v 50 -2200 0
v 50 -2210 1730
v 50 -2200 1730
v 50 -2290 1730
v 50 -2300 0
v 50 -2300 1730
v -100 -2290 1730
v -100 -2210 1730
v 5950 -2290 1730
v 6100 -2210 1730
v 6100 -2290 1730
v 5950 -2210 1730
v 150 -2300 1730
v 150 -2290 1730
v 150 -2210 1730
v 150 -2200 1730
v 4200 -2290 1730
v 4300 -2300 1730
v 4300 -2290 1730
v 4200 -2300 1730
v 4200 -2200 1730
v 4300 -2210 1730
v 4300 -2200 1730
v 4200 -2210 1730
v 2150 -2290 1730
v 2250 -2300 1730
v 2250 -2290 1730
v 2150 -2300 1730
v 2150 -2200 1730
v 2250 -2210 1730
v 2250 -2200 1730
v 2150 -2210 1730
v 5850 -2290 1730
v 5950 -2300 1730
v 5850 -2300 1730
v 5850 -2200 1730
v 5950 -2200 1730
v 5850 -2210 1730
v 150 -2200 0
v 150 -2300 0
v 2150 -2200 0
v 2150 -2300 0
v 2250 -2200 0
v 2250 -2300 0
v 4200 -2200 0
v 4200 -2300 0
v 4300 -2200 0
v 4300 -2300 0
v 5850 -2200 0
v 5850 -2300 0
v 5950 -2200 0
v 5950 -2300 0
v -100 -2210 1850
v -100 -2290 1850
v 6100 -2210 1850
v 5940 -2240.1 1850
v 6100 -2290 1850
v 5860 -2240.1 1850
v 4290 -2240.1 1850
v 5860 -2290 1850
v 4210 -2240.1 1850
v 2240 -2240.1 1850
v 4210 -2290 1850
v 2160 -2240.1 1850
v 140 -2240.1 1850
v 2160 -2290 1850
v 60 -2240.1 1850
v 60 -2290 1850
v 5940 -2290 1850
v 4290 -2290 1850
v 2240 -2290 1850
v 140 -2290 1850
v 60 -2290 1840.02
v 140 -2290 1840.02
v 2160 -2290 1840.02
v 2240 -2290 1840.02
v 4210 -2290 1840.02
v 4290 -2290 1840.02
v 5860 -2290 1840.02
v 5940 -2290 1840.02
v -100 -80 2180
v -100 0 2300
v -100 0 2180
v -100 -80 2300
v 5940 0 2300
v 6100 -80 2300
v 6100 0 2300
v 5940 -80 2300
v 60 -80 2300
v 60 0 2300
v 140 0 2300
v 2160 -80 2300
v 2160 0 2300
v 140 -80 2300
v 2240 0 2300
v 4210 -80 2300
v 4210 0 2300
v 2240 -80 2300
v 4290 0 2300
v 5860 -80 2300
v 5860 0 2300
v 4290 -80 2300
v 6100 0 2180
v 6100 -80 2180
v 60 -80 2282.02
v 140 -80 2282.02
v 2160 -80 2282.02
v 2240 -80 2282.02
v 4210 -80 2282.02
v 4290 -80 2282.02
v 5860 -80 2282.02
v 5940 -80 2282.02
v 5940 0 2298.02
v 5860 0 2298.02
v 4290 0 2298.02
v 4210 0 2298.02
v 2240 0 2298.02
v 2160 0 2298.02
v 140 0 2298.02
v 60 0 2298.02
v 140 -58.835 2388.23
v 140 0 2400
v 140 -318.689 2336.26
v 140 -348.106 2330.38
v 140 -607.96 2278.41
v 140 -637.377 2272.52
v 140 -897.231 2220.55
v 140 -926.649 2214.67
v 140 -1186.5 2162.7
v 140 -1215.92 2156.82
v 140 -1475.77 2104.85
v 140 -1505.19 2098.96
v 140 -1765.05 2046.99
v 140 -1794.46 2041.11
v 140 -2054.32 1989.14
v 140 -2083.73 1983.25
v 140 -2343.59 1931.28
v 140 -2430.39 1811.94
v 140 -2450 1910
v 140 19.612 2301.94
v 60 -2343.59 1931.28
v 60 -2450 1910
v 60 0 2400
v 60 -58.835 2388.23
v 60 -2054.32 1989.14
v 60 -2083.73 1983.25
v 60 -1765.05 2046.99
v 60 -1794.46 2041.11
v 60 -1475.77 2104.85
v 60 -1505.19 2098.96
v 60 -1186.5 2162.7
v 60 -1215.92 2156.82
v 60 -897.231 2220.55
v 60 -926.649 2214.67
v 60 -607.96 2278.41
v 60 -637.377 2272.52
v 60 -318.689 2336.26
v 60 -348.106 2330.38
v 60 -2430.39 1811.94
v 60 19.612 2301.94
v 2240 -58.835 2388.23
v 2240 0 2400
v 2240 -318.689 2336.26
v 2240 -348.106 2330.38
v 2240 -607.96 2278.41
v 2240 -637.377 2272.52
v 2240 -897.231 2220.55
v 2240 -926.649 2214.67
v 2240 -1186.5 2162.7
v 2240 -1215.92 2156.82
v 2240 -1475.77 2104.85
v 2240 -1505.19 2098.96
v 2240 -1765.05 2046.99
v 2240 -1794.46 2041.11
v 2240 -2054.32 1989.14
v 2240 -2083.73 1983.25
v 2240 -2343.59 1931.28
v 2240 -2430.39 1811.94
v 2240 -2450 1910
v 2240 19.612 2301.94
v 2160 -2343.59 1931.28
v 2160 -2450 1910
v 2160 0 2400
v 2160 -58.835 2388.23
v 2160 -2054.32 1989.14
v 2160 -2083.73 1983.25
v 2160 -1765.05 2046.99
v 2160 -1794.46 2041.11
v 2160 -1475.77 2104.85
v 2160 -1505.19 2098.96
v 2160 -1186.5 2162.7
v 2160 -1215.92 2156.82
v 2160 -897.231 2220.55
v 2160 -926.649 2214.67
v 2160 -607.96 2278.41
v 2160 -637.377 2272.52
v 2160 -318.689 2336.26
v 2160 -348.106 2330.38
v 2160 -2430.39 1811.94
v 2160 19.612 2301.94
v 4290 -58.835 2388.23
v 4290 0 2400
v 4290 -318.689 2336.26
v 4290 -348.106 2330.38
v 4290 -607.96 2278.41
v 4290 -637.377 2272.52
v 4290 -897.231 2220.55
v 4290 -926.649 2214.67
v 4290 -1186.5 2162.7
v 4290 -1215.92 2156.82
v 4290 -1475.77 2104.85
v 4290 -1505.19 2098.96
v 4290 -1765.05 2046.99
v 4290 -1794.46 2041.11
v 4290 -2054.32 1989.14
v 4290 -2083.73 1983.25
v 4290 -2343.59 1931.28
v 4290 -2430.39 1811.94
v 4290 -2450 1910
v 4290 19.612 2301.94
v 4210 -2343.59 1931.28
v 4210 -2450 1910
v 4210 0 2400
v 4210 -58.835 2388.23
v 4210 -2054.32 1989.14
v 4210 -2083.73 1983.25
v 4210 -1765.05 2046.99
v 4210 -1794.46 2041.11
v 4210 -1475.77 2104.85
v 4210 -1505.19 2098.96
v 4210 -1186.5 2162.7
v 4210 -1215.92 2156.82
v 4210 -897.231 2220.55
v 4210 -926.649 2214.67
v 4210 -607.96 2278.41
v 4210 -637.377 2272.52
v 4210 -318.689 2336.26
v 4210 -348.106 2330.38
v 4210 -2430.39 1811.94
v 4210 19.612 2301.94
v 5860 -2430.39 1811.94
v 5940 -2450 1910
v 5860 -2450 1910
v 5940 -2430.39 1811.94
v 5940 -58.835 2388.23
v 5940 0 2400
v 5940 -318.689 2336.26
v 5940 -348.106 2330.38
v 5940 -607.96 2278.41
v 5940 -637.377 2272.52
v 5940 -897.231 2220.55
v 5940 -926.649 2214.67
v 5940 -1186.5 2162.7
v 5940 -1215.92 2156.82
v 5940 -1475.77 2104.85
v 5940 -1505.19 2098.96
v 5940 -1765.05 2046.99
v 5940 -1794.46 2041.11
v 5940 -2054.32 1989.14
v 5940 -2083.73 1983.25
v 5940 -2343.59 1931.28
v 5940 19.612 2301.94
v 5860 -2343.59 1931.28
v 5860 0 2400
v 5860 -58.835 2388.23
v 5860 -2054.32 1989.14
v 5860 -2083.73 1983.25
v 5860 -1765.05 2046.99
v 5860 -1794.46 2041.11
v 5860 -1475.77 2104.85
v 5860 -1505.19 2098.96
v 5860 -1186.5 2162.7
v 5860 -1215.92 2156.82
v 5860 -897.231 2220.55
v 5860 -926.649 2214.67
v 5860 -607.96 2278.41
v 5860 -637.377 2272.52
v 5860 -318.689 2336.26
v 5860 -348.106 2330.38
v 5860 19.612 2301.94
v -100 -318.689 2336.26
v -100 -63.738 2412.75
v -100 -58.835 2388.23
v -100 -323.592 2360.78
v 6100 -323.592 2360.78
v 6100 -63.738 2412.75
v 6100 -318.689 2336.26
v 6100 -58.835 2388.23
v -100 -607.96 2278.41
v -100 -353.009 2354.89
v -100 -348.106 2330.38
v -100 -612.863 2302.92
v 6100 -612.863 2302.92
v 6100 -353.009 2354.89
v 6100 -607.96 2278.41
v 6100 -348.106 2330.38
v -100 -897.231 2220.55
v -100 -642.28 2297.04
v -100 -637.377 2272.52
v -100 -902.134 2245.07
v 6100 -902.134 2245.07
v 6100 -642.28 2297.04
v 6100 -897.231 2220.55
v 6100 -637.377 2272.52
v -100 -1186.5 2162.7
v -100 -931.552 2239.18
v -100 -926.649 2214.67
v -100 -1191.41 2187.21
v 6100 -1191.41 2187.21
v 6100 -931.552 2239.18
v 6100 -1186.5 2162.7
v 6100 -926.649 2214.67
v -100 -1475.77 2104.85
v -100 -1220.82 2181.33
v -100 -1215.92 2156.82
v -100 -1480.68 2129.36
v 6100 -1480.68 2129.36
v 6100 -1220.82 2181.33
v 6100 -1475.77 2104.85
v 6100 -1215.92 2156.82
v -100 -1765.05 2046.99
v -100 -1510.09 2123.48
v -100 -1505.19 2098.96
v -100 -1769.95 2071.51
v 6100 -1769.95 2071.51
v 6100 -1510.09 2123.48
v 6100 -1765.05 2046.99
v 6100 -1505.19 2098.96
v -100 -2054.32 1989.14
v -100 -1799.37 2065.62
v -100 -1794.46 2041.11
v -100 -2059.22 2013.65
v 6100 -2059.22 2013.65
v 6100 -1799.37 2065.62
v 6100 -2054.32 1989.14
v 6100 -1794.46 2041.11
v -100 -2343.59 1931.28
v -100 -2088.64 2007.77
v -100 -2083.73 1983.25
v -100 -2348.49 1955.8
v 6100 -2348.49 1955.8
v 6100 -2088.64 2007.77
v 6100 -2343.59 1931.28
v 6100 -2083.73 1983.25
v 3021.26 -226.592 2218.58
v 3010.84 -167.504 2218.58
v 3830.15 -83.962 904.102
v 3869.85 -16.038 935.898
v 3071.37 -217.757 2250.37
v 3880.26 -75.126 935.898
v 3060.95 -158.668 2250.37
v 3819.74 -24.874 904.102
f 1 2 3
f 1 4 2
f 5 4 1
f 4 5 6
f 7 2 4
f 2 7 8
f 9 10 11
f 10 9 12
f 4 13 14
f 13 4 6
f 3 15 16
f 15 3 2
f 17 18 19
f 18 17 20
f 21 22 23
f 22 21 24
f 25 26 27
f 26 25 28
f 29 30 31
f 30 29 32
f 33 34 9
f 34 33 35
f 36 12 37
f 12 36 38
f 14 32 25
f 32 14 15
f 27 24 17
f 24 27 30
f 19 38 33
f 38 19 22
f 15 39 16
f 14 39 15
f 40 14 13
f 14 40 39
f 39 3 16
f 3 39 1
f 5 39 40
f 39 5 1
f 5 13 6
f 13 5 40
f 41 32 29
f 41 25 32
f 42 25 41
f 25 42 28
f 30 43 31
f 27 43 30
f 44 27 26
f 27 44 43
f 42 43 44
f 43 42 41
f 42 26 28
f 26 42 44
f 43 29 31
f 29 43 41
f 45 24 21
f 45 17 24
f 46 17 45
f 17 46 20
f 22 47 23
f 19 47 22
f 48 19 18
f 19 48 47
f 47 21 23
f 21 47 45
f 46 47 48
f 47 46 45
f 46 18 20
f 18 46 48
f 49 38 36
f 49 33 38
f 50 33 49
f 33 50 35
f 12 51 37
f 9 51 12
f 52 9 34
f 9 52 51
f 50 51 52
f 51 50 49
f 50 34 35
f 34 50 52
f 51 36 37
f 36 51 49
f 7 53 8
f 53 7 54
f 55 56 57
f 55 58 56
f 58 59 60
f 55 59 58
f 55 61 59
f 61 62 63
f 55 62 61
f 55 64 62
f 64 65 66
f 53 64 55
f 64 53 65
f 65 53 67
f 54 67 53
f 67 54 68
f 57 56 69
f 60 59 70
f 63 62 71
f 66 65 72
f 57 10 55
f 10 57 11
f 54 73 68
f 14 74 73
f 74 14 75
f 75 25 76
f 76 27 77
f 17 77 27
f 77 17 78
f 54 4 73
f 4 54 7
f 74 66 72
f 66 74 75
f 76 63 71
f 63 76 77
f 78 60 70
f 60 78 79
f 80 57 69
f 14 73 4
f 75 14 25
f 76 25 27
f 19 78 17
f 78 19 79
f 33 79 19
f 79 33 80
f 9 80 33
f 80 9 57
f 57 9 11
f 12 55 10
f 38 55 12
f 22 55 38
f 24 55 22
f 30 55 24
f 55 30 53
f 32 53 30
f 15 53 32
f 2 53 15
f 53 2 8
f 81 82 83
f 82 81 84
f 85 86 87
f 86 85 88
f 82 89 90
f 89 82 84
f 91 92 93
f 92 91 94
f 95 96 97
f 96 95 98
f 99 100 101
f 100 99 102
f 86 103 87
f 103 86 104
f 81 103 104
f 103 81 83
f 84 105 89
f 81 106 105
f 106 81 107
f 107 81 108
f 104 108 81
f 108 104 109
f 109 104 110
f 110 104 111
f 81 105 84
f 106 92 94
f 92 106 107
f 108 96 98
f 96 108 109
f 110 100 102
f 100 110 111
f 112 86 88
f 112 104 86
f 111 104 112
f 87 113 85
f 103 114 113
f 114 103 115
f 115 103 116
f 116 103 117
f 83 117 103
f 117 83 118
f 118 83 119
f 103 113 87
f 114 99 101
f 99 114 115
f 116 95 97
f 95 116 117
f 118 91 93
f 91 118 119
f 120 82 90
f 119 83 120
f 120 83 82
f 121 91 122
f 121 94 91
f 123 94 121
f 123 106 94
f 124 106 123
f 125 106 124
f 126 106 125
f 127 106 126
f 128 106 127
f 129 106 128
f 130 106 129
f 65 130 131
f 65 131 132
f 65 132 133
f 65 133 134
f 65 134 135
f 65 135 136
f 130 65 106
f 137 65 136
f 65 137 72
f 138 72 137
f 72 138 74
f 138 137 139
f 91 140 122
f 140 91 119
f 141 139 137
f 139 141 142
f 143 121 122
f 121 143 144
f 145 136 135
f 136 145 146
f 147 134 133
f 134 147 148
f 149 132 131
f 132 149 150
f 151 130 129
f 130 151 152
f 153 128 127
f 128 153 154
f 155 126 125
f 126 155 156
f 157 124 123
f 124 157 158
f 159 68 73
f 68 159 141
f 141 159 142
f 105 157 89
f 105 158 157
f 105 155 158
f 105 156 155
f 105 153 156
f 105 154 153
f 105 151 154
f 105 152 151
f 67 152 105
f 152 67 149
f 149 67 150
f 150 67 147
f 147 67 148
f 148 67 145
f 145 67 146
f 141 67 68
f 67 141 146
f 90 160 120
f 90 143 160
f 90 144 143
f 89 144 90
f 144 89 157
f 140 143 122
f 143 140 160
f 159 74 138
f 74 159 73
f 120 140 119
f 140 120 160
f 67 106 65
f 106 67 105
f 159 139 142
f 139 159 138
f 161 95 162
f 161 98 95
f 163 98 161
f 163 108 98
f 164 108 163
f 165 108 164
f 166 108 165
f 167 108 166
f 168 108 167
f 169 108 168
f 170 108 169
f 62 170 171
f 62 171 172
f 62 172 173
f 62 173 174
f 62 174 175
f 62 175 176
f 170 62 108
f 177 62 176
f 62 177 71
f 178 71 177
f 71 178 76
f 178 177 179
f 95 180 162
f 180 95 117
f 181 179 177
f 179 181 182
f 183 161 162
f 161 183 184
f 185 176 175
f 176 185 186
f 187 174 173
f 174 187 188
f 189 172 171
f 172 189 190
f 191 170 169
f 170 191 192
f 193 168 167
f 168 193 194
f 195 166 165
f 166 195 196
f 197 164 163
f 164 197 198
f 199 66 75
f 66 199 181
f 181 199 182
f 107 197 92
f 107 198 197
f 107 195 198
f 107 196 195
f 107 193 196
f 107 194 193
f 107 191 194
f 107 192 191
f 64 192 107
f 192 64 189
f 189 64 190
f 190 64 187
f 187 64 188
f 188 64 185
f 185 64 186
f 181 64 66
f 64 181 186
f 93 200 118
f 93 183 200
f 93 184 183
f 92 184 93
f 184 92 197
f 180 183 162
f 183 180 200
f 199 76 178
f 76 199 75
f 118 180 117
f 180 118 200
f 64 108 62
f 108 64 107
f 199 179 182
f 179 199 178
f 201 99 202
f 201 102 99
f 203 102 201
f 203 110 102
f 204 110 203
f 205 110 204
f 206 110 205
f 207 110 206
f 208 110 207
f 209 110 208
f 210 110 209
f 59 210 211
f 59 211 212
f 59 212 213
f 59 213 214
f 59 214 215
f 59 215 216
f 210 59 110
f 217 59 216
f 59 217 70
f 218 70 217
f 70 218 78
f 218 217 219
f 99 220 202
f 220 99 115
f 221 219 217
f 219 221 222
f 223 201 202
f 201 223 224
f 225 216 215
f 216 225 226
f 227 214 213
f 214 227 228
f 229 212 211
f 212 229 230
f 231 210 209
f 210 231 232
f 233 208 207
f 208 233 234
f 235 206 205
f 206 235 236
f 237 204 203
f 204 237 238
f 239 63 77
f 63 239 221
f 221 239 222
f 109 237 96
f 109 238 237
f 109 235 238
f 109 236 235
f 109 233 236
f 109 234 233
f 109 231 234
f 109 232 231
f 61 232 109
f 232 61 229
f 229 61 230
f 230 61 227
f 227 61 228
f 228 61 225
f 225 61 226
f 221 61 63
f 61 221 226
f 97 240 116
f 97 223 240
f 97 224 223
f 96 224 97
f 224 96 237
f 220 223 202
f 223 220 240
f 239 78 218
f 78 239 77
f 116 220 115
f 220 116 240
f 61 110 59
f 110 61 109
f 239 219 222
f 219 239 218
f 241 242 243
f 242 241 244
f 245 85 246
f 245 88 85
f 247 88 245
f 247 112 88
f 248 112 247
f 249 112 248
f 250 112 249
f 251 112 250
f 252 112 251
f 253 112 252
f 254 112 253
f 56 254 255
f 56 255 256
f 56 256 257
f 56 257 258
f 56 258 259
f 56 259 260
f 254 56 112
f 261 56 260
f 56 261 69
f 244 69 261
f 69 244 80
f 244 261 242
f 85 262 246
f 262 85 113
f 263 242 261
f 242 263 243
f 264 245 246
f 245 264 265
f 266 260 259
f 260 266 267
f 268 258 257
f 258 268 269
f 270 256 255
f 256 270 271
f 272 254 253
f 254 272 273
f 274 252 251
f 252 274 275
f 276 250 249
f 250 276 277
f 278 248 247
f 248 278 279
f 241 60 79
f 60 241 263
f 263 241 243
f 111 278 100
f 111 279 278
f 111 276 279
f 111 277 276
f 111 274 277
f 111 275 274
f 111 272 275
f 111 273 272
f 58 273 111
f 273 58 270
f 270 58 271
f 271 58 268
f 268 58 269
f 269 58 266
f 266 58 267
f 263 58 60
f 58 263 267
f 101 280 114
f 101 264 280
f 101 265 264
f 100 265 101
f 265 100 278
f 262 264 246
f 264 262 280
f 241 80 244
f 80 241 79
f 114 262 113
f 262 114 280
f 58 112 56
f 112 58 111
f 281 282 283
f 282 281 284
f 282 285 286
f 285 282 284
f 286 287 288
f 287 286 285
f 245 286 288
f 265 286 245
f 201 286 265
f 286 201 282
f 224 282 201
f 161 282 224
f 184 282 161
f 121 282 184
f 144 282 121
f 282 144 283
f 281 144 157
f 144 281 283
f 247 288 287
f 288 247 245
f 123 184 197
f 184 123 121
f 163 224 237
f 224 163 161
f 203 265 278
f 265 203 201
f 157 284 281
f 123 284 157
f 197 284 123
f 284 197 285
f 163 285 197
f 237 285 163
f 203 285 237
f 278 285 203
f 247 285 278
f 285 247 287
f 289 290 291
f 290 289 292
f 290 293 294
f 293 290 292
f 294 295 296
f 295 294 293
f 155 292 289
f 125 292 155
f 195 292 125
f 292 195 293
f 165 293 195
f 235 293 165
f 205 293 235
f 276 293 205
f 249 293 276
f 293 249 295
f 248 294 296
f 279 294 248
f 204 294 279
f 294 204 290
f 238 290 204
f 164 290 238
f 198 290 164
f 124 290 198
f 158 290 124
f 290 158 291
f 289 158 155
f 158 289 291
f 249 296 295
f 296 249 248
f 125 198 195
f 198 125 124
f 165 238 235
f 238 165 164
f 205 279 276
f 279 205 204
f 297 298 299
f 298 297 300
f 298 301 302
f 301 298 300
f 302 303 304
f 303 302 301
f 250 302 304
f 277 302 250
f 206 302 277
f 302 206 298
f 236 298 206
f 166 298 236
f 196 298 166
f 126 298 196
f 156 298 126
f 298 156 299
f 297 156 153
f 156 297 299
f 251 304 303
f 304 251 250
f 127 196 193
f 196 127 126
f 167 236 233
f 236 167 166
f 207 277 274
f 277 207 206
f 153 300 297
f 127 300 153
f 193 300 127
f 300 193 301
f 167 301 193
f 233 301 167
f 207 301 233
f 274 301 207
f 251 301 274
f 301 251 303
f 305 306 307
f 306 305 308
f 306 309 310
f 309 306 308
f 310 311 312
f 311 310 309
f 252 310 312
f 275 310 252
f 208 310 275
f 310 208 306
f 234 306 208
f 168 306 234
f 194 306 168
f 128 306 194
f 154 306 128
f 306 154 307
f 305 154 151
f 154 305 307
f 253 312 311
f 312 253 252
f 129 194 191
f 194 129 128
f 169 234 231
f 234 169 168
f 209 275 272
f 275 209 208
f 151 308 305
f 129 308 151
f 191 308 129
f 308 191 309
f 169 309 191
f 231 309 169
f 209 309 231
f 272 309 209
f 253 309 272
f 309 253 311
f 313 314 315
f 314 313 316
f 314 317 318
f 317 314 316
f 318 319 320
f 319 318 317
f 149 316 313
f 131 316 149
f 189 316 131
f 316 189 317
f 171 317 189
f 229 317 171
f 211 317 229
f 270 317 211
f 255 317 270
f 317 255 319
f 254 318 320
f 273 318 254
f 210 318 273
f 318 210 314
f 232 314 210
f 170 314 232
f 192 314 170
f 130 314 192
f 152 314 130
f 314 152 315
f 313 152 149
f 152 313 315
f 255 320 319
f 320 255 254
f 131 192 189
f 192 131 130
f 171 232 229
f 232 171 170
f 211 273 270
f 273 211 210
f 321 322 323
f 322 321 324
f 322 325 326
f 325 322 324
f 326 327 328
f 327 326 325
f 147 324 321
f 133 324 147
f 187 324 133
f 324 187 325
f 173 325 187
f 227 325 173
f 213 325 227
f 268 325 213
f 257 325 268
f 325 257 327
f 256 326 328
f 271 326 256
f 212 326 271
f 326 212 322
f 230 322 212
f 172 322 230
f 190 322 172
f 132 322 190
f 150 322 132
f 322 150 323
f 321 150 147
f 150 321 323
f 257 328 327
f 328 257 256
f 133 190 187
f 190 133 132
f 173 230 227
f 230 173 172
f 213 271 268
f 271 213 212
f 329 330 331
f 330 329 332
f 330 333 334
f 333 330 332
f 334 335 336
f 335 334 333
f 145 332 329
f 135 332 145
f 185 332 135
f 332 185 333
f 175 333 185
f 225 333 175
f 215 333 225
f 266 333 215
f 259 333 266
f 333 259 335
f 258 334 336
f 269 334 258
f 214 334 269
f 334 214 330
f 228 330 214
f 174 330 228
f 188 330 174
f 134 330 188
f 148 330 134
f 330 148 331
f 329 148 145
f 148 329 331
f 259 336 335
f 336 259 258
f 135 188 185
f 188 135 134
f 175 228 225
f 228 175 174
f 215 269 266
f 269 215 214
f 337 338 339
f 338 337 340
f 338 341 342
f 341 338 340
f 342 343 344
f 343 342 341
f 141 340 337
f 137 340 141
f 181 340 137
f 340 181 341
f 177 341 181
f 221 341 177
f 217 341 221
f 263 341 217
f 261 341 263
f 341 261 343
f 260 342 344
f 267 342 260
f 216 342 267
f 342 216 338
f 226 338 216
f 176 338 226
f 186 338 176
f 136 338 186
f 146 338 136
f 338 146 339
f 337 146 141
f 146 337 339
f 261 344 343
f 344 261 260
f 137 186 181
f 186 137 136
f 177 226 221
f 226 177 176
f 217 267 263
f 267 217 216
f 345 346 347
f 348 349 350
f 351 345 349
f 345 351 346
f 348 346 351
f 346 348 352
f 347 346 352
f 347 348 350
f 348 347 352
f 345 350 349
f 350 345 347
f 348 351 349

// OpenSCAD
// file: tea_shop_pergola_parameters.scad
// =============================================================================
// Tea Shop — GROUP 3: PERGOLA PARAMETERS
// -----------------------------------------------------------------------------
// All units: mm (1000 mm = 1.0 m), real-life scale.
// Shared global coordinate system (identical to Groups 1 & 2):
//   +X -> left -> right  (0 = left outer wall face, BUILD_W = right outer wall)
//   +Y -> front -> back  (0 = front eave wall face, BUILD_D = back wall)
//   +Z -> up             (0 = ground / plinth top datum)
//   Porch canopy extends in negative Y (forward, from Y = 0 to Y ≈ -2450 mm).
// =============================================================================

// --- SHARED GLOBAL VARIABLES (from Groups 1 & 2 — identical values) ----------
WALL_T  = 250;   // wall panel thickness                      (0.25 m)
BUILD_W = 6000;  // building width along X                    (6.00 m)
BUILD_D = 4000;  // building depth along Y                    (4.00 m)
BACK_H  = 3200;  // wall height at BACK (tall lean-to side)   (3.20 m)
FRONT_H = 2400;  // wall height at FRONT eave (short side)    (2.40 m)

// Group 1 alias names
wall_thickness    = WALL_T;
building_width    = BUILD_W;
building_depth    = BUILD_D;
back_height       = BACK_H;
front_eave_height = FRONT_H;

// Group 1 front opening & plinth references:
sill_height       = 900;   // knee-wall sill datum where brace foot rests (0.90 m)
base_front_margin = 3000;  // total front porch slab depth               (3.00 m)

// Group 2 roof slope derivation (pergola slope follows this exact angle):
ROOF_RISE  = BACK_H - FRONT_H;  // 800 mm
ROOF_RUN   = BUILD_D;            // 4000 mm
ROOF_ANGLE = atan(ROOF_RISE / ROOF_RUN); // ~11.3099°


// =============================================================================
// GROUP 3 PARAMETERS — Pergola Structure & Dimensions
// =============================================================================

// --- Post Cross-Section & Layout ---------------------------------------------
// REFERENCE NOTE: Posts are square timber (~100x100 mm), confirmed from
// wireframe (countryside-tea-shop-3d-model-9cc7378ff7.webp).
POST_SIZE = 100;  // square timber post dimension (100 mm × 100 mm) (0.10 m)

// Y coordinate of the front posts line:
// Placed at Y = -2250 mm (~75% forward across the 3.0 m porch slab),
// leaving ~750 mm open patio in front of posts as shown in reference renders.
POST_Y    = -2250;

// Array of 4 post positions [X, Y]:
// Derived from front elevation proportions:
//   - Post 1 (X=100)  : near left edge of pergola / bench area
//   - Post 2 (X=2200) : intermediate post subdividing wide 3.4m service window span
//   - Post 3 (X=4250) : positioned at mid-pier directly supporting signboard
//   - Post 4 (X=5900) : near right corner of pergola
PERGOLA_POST_POSITIONS = [
    [100,  POST_Y],  // Post 1: Front-Left
    [2200, POST_Y],  // Post 2: Front-Mid-Left
    [4250, POST_Y],  // Post 3: Front-Mid-Right (under "TEA SHOP" sign)
    [5900, POST_Y]   // Post 4: Front-Right
];

// --- Beam Dimensions ---------------------------------------------------------
MAIN_BEAM_WIDTH  = 80;   // thickness of header & ledger beams along Y (0.08 m)
MAIN_BEAM_HEIGHT = 120;  // vertical depth of header & ledger beams    (0.12 m)

// --- Cross Beams / Rafters ---------------------------------------------------
CROSS_BEAM_WIDTH  = 80;   // rafter timber thickness along X            (0.08 m)
CROSS_BEAM_HEIGHT = 100;  // rafter timber depth normal to slope        (0.10 m)

// Rafter X positions aligning directly over the 4 posts:
CROSS_BEAM_X_POSITIONS = [100, 2200, 4250, 5900];

// Sloped length of rafter from front wall (Y=0) to 200 mm past the posts:
CROSS_BEAM_SLOPE_LEN = (abs(POST_Y) + 200) / cos(ROOF_ANGLE);

// --- Pergola Slope Datum & Post Height Derivation ----------------------------
// The pergola roof slopes DOWNWARDS from the front wall eave (Y=0, Z=FRONT_H)
// toward the front posts (Y=POST_Y).
// Under the slope, the rafter top is at: FRONT_H - abs(POST_Y) * tan(ROOF_ANGLE).
// Below the rafters is the header beam (MAIN_BEAM_HEIGHT).
// Post tops touch the underside of the header beam:
PERGOLA_EAVE_Z = FRONT_H;
POST_HEIGHT    = PERGOLA_EAVE_Z - abs(POST_Y) * tan(ROOF_ANGLE) - CROSS_BEAM_HEIGHT - MAIN_BEAM_HEIGHT;

// --- Diagonal Prop Brace -----------------------------------------------------
// Single prop strut visible in window wireframe (8ffafd36e4.webp), anchoring
// near the counter sill and rising diagonally to the overhead rafter.
BRACE_WIDTH     = 60;   // diagonal brace width                       (0.06 m)
BRACE_THICKNESS = 60;   // diagonal brace thickness                   (0.06 m)
BRACE_LENGTH    = 1550; // length along diagonal strut axis           (1.55 m)
BRACE_ANGLE     = 32;   // angle of brace from vertical in degrees

// --- Slatted Roof Canopy (Planks) --------------------------------------------
// 8 flat timber planks running along X (spanning full width), arrayed along
// the slope from the front wall eave to cantilever slightly past the front posts.
SLAT_WIDTH        = 265;  // width of each individual wooden plank      (0.265 m)
SLAT_THICKNESS    = 25;   // thickness of timber plank                  (0.025 m)
SLAT_GAP          = 30;   // air gap between consecutive slats          (0.030 m)
SLAT_COUNT        = 8;    // count matching 8 planks visible in wireframe
SLAT_LENGTH       = 6200; // full span along X (covers 6000 mm + 100 mm side margins)
SLAT_START_OFFSET = 60;   // distance along slope from wall face to first slat (mm)
// file: tea_shop_pergola_modules.scad
// =============================================================================
// Tea Shop — GROUP 3: PERGOLA MODULE LIBRARY
// -----------------------------------------------------------------------------
// Defines all pergola part modules. Creates NO geometry on its own when
// included, allowing individual part_*.scad export files and the assembly
// preview file to include it cleanly.
//
// SHARED GLOBAL COORDINATE SYSTEM (identical to Groups 1 & 2):
//   +X -> left -> right  (0 = left outer wall face, BUILD_W = right outer wall)
//   +Y -> front -> back  (0 = front eave wall face, BUILD_D = back wall)
//   +Z -> up             (0 = ground / plinth top datum)
//   Porch canopy extends in negative Y (forward, from Y = 0 to Y ≈ -2450 mm).
//
// SLOPE CORRECTION:
//   Because the porch is in the negative Y direction (-Y), applying a POSITIVE
//   rotation `rotate([ROOF_ANGLE, 0, 0])` causes the coordinate `[0, -y, 0]`
//   to rotate DOWNWARD into negative Z: `Z = -y * sin(ROOF_ANGLE)`.
//   This ensures the pergola rafters and slats slope DOWNWARDS toward the front
//   posts, resting flush and continuous with the building's roof line.
//
// TODO: The hanging "TEA SHOP" sign and its mounting bracket (a later group)
//       will attach to the main header beam / roof slats near Post 3 (X=4250).
// TODO: The customer bench, stools, and water dispenser stand (later groups)
//       sit on the base slab beneath this pergola structure at Z=0.
// =============================================================================

include <tea_shop_pergola_parameters.scad>;


// =============================================================================
// MODULE 1: pergola_post()
// -----------------------------------------------------------------------------
// A single vertical square timber post modeled at the local origin:
//   Centred in X and Y ([-POST_SIZE/2 .. +POST_SIZE/2]), rising from Z=0
//   to Z=POST_HEIGHT (touching the underside of the front header beam).
// Instanced 4 times via translate() in assemble() — single reusable module.
// =============================================================================
module pergola_post() {
    translate([-POST_SIZE/2, -POST_SIZE/2, 0])
        cube([POST_SIZE, POST_SIZE, POST_HEIGHT]);
}


// =============================================================================
// MODULE 2: pergola_main_beam()
// -----------------------------------------------------------------------------
// The horizontal primary beam system:
//   1. Front header beam: spans across all 4 post tops at Y = POST_Y,
//      distributing load and directly supporting the sloped rafters.
//   2. Rear ledger beam: runs along the front wall eave (Y=0), supporting
//      the upper ends of the rafters.
// =============================================================================
module pergola_main_beam() {
    // 1. Front header beam resting directly on top of the front posts
    translate([-100, POST_Y - MAIN_BEAM_WIDTH/2, POST_HEIGHT])
        cube([BUILD_W + 200, MAIN_BEAM_WIDTH, MAIN_BEAM_HEIGHT]);

    // 2. Rear wall ledger beam anchored to the front wall below the eave
    translate([-100, -MAIN_BEAM_WIDTH, PERGOLA_EAVE_Z - MAIN_BEAM_HEIGHT - CROSS_BEAM_HEIGHT])
        cube([BUILD_W + 200, MAIN_BEAM_WIDTH, MAIN_BEAM_HEIGHT]);
}


// =============================================================================
// MODULE 3: pergola_diagonal_brace()
// -----------------------------------------------------------------------------
// A single diagonal timber brace modeled at local origin. Oriented at BRACE_ANGLE
// from vertical. Instanced at the service counter sill to support the overhead
// rafter beam, exactly as shown in the reference wireframe pass.
// =============================================================================
module pergola_diagonal_brace() {
    rotate([0, -BRACE_ANGLE, 10])
        translate([-BRACE_WIDTH/2, -BRACE_THICKNESS/2, 0])
            cube([BRACE_WIDTH, BRACE_THICKNESS, BRACE_LENGTH]);
}


// =============================================================================
// MODULE 4: pergola_cross_beam()
// -----------------------------------------------------------------------------
// A single sloped rafter running perpendicular to the building (in Y direction).
// Modeled at local origin (X=0) and sloped DOWNWARD at ROOF_ANGLE:
//   - Starts at the front wall ledger beam (Y=0)
//   - Slopes down to bear across the front header beam at POST_Y
//   - Projects 200 mm past the posts as an exposed rafter tail
// =============================================================================
module pergola_cross_beam() {
    translate([0, 0, PERGOLA_EAVE_Z])
        rotate([ROOF_ANGLE, 0, 0])
            translate([-CROSS_BEAM_WIDTH/2, -CROSS_BEAM_SLOPE_LEN, -CROSS_BEAM_HEIGHT])
                cube([CROSS_BEAM_WIDTH, CROSS_BEAM_SLOPE_LEN, CROSS_BEAM_HEIGHT]);
}


// =============================================================================
// MODULE 5: pergola_slat()
// -----------------------------------------------------------------------------
// A single flat timber canopy plank running along X (spanning the full width).
// Instanced and arrayed in assemble() via a for loop down the sloped plane,
// resting directly on top of the rafters.
// =============================================================================
module pergola_slat() {
    translate([-100, -SLAT_WIDTH, 0])
        cube([SLAT_LENGTH, SLAT_WIDTH, SLAT_THICKNESS]);
}


// =============================================================================
// ASSEMBLE MODULE — Visual verification preview (not for export)
// -----------------------------------------------------------------------------
// Press F5 in OpenSCAD to view all Group 3 pergola components together in color.
// For individual STL export, use the dedicated part_*.scad files.
// =============================================================================
module assemble() {
    // 1. Posts (4 instances positioned in shared global coordinates)
    color("SaddleBrown") {
        for (pos = PERGOLA_POST_POSITIONS) {
            translate([pos[0], pos[1], 0])
                pergola_post();
        }
    }

    // 2. Main horizontal beams (front header + rear ledger)
    color("Peru")
        pergola_main_beam();

    // 3. Cross beams / rafters (4 instances positioned over each post line)
    color("BurlyWood") {
        for (x = CROSS_BEAM_X_POSITIONS) {
            translate([x, 0, 0])
                pergola_cross_beam();
        }
    }

    // 4. Slatted canopy roof (8 flat planks arrayed along the slope)
    color("DarkGoldenrod") {
        for (i = [0 : SLAT_COUNT - 1]) {
            dist = SLAT_START_OFFSET + i * (SLAT_WIDTH + SLAT_GAP);
            translate([0, 0, PERGOLA_EAVE_Z])
                rotate([ROOF_ANGLE, 0, 0])
                    translate([0, -dist, 0])
                        pergola_slat();
        }
    }

    // 5. Diagonal prop brace (anchored at the service window counter sill)
    color("DarkSlateGray") {
        translate([3850, -50, sill_height + 20])
            pergola_diagonal_brace();
    }
}

// Default preview invocation:
assemble();
// main file
// =============================================================================
// part_pergola_main_beam.scad — EXPORT THE HEADER + LEDGER BEAMS only.
// Press F6 (render), then export as STL.
// =============================================================================

include <tea_shop_pergola_modules.scad>;

pergola_main_beam();
